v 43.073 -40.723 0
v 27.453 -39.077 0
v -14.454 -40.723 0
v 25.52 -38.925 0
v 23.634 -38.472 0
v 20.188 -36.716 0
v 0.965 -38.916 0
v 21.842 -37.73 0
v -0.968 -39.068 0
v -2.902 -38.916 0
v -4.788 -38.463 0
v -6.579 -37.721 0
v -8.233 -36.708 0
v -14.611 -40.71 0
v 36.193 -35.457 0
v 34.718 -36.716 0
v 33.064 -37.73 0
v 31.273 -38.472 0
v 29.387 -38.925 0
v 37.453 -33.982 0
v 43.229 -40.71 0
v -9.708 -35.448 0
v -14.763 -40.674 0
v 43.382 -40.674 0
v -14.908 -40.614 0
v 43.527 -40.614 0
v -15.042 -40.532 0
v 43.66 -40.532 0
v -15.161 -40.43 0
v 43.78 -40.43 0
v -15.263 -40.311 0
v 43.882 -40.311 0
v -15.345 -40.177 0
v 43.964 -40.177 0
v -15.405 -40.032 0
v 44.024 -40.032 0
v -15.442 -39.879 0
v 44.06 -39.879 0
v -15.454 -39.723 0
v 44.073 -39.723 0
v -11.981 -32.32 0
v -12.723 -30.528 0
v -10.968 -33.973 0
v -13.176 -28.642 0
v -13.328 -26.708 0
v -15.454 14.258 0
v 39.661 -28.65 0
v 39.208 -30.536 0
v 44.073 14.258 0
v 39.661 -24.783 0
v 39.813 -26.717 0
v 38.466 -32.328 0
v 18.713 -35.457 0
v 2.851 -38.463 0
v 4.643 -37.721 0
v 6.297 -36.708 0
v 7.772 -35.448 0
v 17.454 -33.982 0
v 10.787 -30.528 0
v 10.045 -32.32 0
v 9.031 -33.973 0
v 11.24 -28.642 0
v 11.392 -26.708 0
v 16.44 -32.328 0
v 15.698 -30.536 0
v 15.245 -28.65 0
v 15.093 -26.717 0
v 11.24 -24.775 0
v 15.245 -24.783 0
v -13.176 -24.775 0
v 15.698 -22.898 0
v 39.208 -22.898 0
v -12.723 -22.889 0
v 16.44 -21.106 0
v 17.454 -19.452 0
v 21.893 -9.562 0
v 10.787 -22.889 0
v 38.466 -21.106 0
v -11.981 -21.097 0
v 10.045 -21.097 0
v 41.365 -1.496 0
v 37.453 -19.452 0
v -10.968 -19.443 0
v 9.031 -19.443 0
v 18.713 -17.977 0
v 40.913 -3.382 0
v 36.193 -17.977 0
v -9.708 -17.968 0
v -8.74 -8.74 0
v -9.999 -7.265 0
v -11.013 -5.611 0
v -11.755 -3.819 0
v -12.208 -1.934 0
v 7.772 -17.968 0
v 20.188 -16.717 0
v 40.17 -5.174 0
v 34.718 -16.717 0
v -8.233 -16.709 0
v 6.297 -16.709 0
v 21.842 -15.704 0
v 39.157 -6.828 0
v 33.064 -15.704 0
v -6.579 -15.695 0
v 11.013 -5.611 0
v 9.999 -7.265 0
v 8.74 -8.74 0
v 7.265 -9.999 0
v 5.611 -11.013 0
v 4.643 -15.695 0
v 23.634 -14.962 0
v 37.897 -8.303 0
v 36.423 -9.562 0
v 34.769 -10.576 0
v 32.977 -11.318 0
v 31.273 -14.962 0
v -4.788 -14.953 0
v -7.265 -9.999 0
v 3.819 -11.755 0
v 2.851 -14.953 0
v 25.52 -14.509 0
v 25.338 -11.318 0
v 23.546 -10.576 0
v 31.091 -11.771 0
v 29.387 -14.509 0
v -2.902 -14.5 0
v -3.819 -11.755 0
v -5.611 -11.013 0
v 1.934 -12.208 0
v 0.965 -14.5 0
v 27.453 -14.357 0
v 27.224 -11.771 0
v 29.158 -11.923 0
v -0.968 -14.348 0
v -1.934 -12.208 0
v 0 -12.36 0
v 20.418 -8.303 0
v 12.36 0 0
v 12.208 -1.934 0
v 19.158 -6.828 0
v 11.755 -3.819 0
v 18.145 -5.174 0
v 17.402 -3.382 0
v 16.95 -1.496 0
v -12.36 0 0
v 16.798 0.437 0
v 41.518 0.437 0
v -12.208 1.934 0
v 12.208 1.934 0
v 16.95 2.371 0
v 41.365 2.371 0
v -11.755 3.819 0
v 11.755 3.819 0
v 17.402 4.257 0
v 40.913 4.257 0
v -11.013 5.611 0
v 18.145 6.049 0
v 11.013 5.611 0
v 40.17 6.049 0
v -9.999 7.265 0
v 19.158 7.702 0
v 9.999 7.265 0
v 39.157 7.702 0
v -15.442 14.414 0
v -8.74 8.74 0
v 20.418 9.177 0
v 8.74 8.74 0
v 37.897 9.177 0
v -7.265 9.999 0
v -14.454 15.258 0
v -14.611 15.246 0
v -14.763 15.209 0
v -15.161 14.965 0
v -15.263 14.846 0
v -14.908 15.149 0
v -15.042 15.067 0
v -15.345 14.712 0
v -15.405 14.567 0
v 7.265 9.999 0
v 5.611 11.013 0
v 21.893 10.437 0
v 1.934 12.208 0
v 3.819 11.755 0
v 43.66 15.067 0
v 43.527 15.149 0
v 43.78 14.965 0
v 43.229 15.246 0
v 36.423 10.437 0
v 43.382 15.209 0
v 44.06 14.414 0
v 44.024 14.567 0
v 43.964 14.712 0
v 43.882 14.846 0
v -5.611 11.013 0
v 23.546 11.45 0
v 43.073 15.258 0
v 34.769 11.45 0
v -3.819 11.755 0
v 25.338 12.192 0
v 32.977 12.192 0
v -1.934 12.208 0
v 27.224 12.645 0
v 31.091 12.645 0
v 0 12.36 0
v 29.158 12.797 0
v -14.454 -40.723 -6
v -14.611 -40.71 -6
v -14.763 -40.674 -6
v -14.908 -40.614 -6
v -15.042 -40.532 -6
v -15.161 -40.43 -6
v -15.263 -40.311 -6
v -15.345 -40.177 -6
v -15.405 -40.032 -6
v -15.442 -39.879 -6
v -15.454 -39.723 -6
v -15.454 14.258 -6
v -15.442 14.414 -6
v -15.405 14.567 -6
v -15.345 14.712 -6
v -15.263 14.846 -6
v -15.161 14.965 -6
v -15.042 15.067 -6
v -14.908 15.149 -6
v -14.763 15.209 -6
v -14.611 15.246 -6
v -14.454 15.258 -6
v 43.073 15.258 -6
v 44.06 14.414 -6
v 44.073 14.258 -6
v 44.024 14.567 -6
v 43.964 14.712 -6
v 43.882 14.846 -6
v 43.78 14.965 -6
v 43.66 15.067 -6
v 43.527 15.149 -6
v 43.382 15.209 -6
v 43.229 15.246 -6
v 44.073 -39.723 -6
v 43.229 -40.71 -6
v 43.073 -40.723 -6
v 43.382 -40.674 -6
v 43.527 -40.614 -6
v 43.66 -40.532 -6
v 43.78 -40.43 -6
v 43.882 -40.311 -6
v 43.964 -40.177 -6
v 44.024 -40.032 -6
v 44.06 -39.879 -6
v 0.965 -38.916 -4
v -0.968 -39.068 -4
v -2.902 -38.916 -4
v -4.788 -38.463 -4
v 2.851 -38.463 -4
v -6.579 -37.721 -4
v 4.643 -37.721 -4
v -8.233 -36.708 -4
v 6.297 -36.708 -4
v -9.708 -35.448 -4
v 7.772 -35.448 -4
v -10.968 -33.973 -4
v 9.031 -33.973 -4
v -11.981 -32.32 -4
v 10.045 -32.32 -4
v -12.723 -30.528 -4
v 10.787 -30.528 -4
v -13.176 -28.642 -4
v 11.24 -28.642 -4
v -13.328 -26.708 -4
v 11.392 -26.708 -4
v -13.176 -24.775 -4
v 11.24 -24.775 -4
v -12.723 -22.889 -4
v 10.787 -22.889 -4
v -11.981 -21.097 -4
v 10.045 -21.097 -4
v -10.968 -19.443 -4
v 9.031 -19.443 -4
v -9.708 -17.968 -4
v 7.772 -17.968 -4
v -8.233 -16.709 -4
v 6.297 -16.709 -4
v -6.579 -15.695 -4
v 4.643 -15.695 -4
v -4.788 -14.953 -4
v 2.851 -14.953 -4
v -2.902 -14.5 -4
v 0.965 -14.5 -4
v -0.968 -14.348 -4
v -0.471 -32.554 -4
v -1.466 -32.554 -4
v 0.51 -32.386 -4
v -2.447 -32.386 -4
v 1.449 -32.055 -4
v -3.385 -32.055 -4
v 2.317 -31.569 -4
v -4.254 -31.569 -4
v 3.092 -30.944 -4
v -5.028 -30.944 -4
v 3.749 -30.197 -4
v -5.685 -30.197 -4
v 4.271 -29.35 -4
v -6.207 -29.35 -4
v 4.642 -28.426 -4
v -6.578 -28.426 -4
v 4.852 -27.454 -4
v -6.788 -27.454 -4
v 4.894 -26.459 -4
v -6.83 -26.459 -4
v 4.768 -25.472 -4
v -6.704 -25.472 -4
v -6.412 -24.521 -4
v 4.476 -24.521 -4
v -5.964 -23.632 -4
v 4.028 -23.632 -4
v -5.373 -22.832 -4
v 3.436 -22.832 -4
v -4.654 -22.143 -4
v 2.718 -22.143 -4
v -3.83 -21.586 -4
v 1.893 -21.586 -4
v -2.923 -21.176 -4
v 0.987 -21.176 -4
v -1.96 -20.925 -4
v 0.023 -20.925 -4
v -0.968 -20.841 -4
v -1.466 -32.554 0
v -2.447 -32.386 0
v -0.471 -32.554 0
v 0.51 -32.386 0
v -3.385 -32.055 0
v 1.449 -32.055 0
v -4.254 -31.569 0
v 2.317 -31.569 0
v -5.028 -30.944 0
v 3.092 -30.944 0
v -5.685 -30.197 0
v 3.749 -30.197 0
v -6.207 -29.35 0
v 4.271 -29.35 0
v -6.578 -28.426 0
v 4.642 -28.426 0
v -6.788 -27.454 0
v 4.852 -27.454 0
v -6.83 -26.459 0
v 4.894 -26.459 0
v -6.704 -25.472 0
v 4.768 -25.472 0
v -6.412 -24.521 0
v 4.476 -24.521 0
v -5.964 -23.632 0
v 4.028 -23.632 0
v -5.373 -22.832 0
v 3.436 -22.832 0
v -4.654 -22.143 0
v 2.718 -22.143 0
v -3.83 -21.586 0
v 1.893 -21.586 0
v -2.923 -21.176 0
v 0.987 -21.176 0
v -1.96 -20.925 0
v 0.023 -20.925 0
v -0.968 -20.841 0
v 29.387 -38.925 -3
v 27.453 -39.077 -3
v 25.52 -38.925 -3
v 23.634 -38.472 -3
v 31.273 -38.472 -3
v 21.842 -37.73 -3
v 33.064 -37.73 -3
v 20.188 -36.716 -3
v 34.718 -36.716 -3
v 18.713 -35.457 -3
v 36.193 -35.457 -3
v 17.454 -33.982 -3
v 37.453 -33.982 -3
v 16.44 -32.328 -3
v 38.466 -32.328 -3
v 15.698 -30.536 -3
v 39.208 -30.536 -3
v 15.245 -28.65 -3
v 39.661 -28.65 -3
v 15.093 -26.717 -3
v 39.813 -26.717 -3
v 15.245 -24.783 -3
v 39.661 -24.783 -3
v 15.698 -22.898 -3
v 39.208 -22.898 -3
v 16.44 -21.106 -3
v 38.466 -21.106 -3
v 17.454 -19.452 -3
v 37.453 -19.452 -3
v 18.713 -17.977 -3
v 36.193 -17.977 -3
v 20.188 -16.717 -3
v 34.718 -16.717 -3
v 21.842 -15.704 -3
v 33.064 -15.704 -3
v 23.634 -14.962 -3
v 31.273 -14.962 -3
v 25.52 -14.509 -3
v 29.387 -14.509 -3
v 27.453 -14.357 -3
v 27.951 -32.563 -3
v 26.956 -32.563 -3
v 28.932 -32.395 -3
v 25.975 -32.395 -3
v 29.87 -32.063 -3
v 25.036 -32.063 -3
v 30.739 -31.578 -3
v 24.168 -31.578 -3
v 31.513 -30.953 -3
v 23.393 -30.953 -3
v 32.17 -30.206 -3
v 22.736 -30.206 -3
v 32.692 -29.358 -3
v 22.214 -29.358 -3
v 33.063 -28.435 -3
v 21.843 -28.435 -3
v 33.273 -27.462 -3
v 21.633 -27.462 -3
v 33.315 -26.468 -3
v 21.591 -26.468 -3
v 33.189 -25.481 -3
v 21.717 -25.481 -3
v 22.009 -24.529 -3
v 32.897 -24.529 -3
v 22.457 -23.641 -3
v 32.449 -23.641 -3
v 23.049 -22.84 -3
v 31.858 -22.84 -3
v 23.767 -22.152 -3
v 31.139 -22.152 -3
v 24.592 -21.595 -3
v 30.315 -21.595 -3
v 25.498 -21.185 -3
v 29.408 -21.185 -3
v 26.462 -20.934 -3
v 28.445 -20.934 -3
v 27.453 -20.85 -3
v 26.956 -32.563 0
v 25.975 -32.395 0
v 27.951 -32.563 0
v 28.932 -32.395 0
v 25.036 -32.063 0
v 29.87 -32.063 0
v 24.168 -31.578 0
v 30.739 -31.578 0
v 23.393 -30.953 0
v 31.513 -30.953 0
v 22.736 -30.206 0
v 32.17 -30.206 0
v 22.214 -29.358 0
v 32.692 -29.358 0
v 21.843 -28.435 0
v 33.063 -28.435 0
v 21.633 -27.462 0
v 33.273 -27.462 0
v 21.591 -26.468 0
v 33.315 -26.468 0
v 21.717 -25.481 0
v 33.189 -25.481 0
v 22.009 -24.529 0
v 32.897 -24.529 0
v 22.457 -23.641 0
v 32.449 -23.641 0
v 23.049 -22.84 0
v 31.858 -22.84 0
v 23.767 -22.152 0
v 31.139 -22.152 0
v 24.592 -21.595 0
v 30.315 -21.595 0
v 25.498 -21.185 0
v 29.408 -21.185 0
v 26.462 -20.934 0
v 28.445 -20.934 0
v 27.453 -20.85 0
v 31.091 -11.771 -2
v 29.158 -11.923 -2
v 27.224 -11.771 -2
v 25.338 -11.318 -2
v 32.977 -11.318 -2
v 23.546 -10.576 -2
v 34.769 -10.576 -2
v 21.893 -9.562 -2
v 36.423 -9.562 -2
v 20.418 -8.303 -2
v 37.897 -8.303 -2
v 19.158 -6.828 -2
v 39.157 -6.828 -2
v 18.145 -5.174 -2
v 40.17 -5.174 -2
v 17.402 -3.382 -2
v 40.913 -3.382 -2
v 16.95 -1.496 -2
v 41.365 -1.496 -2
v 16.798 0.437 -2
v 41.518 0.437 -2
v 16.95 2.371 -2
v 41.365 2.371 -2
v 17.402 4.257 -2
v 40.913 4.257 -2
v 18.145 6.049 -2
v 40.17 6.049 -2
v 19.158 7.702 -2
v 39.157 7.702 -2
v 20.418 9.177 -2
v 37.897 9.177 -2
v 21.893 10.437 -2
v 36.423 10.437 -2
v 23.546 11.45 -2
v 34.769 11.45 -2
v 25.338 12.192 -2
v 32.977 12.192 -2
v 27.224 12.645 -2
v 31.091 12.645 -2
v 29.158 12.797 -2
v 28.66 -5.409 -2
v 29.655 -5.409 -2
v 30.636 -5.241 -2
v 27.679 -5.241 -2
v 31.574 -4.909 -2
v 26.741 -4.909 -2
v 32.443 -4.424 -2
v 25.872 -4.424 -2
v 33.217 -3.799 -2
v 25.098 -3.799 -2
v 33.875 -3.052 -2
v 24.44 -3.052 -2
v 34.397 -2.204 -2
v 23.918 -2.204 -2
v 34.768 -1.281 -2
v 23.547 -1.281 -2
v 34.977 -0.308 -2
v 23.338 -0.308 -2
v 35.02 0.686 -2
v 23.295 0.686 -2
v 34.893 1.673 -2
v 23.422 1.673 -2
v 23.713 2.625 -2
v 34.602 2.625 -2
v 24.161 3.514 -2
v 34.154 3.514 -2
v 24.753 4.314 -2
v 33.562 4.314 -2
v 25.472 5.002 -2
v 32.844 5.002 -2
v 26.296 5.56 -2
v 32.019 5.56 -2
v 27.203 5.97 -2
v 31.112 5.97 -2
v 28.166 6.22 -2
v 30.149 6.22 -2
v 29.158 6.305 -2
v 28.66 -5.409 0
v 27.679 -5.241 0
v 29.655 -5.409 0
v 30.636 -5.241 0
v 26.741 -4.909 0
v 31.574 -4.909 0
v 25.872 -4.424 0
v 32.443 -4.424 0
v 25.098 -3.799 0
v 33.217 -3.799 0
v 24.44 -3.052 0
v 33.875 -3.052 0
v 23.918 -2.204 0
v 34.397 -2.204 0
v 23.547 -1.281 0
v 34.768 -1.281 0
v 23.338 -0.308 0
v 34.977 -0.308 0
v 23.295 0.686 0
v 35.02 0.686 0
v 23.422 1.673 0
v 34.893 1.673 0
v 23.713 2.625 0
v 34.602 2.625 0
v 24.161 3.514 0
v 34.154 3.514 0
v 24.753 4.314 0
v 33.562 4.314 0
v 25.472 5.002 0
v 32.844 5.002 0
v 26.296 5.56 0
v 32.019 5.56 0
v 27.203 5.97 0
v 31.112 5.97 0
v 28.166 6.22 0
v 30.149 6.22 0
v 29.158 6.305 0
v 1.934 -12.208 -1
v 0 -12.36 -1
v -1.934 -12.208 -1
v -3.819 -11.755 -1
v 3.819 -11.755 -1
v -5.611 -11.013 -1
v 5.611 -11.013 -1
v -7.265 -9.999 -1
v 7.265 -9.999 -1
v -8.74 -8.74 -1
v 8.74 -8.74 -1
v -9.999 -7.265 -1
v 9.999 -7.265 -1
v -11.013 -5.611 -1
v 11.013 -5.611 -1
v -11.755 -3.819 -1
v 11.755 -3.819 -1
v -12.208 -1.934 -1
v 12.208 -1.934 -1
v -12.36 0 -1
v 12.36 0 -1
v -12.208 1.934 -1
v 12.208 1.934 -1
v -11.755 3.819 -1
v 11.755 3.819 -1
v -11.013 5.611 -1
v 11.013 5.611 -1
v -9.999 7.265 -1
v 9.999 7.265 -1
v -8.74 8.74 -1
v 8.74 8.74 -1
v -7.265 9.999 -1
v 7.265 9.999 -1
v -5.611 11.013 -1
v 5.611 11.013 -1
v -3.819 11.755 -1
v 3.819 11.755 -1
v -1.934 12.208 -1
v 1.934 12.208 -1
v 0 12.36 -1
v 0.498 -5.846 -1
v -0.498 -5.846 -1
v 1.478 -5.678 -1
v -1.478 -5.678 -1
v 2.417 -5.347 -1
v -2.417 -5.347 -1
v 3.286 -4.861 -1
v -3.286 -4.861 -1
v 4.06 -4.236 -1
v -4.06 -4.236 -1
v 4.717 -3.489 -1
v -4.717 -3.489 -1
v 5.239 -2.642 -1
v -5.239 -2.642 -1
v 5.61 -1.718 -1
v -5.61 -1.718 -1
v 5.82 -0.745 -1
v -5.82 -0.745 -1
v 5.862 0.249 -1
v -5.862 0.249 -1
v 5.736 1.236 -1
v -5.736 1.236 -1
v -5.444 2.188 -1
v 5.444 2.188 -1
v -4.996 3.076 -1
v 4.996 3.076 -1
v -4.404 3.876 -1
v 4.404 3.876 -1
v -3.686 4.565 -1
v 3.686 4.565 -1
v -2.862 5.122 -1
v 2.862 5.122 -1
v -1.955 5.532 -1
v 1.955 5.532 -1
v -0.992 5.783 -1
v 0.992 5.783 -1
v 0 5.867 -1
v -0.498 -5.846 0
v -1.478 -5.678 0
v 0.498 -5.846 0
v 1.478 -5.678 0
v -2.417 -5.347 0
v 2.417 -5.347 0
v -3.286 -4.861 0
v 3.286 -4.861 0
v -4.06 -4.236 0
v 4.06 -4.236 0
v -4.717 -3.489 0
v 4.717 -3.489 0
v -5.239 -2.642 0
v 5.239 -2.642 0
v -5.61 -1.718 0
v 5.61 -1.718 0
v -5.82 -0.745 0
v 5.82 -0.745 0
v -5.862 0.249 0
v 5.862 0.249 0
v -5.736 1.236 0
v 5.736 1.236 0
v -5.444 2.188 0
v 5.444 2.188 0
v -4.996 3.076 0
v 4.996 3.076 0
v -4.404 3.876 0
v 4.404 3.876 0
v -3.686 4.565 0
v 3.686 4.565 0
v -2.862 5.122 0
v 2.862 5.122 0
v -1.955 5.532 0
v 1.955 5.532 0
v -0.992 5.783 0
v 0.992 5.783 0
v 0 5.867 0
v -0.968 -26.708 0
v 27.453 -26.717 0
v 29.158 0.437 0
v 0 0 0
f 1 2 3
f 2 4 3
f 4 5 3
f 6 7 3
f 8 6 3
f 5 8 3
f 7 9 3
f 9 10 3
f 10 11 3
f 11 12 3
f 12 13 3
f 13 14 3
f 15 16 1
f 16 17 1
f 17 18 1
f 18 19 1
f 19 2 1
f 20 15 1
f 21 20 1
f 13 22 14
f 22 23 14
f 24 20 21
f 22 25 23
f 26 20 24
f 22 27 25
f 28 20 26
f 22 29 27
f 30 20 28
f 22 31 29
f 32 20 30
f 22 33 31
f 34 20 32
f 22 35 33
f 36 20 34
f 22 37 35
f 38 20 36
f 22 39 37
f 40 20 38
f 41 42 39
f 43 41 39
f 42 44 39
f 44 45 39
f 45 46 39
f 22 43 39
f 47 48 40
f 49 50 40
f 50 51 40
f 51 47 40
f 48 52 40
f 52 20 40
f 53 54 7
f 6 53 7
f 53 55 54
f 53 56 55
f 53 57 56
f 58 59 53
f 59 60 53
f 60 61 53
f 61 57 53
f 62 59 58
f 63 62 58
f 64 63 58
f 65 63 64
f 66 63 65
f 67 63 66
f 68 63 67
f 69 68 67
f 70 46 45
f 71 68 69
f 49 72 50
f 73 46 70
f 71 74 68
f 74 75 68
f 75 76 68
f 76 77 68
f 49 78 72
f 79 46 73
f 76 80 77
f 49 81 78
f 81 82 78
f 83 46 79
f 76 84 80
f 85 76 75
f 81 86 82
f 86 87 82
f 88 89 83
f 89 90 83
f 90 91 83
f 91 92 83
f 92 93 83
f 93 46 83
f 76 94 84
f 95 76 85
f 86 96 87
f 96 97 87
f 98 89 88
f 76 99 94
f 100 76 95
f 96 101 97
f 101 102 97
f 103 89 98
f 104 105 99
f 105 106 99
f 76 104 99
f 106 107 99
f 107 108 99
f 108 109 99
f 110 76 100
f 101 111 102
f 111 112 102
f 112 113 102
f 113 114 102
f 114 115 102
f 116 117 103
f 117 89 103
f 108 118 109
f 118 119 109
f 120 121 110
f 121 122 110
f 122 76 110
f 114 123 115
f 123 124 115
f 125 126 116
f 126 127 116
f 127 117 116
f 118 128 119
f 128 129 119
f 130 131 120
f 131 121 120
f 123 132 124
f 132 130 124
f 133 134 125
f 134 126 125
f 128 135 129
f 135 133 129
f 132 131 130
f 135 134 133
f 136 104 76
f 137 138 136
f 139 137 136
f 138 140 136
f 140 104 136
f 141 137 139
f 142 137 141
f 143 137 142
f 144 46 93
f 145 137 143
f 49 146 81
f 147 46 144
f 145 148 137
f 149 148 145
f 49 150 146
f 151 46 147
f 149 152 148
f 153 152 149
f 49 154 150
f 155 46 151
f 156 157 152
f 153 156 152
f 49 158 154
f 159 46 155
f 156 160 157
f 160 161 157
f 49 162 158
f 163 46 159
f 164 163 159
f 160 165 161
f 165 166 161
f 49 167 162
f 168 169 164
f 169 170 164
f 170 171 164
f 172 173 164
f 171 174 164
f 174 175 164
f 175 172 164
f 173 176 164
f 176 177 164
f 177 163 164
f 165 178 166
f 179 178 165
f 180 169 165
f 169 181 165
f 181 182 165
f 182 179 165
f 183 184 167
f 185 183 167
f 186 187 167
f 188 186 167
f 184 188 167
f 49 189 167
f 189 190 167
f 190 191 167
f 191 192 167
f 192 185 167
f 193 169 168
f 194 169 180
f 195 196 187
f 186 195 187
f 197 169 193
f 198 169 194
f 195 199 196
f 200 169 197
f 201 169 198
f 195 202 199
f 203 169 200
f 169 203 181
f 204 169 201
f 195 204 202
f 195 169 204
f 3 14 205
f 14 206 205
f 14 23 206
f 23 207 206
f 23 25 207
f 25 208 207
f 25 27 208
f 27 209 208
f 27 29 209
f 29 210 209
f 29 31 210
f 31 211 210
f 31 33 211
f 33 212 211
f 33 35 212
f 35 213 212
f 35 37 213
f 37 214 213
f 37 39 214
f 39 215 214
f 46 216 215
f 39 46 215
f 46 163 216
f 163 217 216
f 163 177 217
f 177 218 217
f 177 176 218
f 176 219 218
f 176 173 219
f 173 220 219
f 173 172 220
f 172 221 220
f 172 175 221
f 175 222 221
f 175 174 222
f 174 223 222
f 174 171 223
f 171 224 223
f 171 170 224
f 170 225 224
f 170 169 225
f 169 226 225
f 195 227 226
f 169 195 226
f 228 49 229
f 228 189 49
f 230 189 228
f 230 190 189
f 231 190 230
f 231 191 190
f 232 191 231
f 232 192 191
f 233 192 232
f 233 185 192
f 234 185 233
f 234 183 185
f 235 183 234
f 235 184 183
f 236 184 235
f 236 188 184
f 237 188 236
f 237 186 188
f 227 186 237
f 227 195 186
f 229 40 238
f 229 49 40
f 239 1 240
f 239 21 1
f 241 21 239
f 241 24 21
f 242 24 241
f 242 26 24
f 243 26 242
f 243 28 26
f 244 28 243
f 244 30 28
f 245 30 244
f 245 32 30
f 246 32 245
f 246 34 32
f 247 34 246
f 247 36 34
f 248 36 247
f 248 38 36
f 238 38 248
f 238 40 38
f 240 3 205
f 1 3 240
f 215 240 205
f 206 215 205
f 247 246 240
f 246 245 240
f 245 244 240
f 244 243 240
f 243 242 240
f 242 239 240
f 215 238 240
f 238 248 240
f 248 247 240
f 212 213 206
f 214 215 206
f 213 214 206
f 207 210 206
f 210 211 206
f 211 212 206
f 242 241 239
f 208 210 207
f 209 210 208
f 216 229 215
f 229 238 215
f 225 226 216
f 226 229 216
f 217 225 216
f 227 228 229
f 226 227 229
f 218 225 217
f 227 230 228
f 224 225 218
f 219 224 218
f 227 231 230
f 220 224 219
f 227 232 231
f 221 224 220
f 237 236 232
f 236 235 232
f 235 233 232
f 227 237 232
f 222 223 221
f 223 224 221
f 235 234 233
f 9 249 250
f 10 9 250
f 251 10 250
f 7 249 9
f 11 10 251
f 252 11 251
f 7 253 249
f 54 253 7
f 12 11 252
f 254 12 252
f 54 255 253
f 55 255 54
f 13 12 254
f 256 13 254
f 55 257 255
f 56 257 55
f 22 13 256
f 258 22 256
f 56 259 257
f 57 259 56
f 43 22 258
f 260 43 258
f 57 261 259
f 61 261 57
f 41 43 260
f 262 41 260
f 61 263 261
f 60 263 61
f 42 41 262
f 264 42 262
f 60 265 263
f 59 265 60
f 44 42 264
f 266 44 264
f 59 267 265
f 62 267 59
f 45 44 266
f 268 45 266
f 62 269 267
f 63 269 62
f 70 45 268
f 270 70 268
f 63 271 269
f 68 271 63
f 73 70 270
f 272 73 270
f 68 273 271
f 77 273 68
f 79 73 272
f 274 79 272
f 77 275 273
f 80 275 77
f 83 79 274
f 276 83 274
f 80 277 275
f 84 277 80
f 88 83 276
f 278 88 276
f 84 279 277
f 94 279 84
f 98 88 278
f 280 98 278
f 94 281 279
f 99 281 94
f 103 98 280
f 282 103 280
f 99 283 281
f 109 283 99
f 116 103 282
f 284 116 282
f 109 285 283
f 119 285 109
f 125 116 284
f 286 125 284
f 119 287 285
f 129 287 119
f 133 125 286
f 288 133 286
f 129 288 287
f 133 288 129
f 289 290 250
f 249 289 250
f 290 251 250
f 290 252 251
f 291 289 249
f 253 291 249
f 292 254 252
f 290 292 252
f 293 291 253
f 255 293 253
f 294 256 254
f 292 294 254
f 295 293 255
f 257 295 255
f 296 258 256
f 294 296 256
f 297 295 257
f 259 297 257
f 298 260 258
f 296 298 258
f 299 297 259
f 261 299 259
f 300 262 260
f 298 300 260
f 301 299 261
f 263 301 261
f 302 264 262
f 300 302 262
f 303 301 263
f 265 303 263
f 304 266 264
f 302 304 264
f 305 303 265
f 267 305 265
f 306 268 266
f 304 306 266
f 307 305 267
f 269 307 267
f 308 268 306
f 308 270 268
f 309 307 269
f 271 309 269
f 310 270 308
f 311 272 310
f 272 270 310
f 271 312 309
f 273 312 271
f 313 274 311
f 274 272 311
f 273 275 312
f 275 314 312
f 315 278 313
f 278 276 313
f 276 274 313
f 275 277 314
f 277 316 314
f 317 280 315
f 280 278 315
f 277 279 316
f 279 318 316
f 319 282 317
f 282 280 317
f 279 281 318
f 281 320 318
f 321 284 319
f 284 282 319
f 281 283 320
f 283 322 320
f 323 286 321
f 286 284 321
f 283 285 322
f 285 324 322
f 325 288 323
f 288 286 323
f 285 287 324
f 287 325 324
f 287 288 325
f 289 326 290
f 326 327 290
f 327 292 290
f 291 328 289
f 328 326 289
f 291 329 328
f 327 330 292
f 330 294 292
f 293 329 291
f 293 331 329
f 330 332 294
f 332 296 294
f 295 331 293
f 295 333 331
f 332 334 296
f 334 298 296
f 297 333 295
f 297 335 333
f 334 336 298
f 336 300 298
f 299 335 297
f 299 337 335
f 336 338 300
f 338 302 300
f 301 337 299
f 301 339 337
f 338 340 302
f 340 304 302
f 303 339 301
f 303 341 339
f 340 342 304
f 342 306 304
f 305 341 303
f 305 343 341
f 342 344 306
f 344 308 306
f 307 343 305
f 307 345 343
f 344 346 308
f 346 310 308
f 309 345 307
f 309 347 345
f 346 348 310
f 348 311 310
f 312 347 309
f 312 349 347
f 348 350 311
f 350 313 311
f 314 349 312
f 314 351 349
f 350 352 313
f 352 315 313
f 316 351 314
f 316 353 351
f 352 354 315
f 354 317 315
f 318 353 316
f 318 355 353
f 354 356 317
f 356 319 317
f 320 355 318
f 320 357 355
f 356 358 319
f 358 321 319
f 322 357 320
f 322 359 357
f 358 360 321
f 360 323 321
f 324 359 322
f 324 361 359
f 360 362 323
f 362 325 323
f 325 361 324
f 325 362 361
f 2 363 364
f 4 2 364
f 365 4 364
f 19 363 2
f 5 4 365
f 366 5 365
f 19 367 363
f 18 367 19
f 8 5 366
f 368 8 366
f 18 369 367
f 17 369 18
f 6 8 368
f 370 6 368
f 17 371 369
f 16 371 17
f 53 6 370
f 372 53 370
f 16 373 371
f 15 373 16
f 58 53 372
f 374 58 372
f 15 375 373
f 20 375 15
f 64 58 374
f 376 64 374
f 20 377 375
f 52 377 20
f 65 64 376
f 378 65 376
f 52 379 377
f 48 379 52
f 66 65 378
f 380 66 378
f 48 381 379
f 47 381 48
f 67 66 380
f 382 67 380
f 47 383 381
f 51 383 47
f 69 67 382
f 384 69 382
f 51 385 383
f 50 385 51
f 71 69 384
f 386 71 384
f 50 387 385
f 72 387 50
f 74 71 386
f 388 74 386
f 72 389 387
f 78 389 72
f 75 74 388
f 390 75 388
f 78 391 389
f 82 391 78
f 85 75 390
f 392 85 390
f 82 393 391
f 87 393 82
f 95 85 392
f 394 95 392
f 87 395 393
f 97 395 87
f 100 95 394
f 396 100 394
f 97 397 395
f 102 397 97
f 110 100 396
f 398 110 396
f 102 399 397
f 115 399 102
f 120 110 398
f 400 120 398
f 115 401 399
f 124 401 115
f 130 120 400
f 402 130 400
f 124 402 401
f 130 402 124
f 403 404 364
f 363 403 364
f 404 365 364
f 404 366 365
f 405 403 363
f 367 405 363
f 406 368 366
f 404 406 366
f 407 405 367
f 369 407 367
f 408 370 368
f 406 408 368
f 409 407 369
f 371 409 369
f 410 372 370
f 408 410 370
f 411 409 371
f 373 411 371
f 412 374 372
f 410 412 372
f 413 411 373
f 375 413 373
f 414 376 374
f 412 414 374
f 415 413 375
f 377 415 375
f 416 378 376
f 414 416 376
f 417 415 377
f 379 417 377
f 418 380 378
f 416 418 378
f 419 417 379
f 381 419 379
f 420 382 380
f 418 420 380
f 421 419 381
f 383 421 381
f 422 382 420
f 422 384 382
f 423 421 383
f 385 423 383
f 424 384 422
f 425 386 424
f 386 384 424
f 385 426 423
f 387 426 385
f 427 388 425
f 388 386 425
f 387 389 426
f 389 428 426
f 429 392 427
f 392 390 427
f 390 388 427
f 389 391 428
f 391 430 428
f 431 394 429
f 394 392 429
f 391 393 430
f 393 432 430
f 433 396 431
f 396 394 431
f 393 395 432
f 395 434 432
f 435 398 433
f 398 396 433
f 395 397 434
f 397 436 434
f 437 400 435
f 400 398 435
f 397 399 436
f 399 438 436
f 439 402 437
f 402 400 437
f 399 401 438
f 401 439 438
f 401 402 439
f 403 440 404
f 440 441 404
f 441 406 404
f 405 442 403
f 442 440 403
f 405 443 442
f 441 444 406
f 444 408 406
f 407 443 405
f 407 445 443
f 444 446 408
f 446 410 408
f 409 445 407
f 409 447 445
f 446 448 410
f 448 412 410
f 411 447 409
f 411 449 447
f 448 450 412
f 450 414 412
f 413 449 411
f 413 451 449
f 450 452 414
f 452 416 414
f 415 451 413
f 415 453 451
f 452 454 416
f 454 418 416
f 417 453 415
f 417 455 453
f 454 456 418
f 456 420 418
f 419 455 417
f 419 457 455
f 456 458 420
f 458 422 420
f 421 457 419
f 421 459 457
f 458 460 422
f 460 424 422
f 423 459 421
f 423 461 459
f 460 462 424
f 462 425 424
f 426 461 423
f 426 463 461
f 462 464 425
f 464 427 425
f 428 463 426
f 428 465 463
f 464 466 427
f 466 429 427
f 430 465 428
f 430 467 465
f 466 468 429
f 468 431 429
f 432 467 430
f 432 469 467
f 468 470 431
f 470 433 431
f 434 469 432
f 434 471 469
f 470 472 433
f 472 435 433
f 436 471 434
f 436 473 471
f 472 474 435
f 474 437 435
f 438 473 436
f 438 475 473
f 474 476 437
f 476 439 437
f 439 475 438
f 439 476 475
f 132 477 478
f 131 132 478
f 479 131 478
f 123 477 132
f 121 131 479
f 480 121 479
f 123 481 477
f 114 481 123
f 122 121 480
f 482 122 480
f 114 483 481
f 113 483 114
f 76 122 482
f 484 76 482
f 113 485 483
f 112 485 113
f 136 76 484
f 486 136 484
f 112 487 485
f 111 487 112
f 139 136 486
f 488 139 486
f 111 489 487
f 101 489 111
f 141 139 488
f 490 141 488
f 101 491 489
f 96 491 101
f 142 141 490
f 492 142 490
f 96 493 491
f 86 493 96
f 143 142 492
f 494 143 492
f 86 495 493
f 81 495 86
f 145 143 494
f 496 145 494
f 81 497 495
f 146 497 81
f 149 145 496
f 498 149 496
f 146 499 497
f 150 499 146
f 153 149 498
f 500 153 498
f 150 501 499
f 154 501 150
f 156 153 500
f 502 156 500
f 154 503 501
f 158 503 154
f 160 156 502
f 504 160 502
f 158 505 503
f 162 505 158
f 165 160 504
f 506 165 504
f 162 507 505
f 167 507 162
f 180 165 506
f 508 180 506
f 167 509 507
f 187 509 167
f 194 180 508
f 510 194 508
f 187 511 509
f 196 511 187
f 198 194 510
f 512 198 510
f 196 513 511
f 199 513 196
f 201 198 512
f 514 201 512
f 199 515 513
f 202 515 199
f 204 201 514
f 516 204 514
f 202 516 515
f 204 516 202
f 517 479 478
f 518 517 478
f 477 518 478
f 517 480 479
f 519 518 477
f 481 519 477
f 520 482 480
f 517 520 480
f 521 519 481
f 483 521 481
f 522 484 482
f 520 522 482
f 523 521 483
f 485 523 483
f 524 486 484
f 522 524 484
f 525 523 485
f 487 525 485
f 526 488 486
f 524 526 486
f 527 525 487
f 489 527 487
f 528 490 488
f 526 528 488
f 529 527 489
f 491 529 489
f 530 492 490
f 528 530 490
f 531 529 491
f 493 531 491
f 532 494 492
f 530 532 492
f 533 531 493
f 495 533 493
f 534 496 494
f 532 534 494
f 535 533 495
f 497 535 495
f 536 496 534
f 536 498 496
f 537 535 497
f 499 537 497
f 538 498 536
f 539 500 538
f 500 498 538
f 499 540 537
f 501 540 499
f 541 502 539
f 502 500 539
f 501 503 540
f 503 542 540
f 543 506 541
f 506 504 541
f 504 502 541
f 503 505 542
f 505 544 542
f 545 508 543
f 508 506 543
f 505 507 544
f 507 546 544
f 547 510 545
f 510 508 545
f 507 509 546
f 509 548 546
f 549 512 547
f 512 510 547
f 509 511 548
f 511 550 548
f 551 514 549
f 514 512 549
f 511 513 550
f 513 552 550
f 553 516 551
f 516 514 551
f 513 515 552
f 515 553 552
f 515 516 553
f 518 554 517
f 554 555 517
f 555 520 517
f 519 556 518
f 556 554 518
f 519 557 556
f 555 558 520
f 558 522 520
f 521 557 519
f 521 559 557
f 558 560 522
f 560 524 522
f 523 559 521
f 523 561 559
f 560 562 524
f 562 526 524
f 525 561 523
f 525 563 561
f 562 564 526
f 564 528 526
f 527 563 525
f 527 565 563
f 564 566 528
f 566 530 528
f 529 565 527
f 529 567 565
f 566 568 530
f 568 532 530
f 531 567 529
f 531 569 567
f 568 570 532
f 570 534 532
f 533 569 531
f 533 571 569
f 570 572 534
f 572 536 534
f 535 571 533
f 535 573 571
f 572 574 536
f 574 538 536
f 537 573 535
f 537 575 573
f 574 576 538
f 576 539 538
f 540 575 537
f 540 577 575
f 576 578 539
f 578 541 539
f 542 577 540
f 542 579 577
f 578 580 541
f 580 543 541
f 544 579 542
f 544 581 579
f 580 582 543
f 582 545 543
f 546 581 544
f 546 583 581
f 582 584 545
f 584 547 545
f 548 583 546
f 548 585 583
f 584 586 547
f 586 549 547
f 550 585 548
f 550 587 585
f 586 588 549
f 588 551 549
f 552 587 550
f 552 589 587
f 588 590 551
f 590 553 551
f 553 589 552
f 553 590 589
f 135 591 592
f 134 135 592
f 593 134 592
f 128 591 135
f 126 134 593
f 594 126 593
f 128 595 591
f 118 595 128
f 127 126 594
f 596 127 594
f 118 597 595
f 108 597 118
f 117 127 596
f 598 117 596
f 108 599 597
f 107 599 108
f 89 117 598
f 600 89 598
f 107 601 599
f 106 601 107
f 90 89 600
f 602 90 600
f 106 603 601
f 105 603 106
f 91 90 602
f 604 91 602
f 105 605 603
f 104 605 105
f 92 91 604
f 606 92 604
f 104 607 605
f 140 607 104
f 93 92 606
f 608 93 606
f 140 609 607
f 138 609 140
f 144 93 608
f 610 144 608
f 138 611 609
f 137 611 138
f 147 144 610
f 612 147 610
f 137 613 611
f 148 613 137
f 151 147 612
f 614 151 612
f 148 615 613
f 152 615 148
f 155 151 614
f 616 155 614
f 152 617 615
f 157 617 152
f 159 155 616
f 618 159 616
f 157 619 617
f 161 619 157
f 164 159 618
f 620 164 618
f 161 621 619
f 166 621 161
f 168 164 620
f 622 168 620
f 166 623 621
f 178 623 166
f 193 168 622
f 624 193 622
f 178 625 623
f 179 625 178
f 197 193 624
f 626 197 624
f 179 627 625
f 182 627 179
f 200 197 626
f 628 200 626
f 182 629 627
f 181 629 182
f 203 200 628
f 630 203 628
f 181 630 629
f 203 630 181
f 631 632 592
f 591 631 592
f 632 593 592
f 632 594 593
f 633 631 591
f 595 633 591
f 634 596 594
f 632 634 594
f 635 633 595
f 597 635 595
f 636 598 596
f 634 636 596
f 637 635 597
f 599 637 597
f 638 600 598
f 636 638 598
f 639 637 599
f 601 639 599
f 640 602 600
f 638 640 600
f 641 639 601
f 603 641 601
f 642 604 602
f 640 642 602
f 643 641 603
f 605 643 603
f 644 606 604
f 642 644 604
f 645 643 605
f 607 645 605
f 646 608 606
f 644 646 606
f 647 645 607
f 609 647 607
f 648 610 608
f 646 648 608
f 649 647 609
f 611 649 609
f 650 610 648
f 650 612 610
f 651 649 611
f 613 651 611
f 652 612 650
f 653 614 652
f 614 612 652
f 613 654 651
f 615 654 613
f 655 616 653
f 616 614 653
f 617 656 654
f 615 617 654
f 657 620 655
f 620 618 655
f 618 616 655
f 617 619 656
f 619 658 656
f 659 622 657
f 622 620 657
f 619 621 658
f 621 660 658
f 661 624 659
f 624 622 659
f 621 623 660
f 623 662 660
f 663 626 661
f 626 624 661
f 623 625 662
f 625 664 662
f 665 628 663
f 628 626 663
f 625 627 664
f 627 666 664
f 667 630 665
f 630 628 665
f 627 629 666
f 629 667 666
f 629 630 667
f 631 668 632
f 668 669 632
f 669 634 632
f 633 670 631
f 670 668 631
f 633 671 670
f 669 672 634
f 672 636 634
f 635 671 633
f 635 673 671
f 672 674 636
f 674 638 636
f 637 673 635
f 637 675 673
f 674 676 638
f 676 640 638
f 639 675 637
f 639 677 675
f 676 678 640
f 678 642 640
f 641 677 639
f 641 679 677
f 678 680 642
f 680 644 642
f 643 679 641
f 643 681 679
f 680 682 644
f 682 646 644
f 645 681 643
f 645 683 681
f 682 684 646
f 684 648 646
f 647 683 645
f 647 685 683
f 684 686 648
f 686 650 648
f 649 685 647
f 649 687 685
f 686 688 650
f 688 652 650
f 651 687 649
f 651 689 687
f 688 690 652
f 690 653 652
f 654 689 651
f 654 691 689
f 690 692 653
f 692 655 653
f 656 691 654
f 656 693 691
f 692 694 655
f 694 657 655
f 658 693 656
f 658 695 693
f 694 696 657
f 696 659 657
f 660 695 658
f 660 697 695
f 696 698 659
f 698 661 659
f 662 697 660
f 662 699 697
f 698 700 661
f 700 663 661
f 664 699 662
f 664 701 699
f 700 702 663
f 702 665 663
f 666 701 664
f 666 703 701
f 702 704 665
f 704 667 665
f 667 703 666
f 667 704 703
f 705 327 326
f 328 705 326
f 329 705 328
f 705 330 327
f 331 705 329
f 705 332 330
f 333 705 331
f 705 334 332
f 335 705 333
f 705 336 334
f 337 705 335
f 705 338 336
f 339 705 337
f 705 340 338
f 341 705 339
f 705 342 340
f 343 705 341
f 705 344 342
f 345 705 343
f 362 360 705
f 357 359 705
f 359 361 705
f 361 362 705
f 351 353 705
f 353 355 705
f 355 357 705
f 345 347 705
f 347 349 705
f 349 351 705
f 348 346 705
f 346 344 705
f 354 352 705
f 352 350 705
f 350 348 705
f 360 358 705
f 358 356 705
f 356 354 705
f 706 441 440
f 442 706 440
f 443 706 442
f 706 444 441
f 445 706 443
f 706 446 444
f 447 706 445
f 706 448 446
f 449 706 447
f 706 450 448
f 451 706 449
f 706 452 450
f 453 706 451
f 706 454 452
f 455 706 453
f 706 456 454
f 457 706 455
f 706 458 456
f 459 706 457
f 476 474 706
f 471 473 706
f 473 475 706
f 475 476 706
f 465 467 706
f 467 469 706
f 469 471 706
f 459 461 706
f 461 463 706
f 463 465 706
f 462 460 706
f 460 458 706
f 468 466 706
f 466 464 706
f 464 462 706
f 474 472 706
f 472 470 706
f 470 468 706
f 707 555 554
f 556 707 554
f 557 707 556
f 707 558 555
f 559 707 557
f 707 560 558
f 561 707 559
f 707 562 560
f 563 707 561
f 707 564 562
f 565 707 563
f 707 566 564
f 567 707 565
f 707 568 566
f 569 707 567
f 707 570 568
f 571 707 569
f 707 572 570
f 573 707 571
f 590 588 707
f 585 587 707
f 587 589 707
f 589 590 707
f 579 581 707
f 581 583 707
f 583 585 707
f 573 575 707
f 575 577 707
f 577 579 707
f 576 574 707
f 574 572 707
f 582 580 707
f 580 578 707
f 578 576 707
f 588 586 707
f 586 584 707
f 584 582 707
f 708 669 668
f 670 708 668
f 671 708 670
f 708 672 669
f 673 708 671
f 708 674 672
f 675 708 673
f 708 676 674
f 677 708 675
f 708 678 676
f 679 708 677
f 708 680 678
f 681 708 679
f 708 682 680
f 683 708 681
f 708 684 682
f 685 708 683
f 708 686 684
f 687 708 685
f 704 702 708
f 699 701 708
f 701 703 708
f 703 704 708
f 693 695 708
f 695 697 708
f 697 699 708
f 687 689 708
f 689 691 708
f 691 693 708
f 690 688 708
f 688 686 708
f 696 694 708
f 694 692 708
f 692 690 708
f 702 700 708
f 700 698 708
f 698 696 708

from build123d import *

# Parameters (mm, degrees)
BOSS_EXTRUDE1_DEPTH   = 6
CAVITY1_START         = -3
CAVITY1_OUTLINE_R     = 12.36
CAVITY1_OUTLINE_R_2   = 5.8674
CAVITY1_DEPTH         = 3
CAVITY1_START_2       = -2
CAVITY1_2_OUTLINE_R   = 12.36
CAVITY1_2_OUTLINE_R_2 = 5.8674
CAVITY1_2_DEPTH       = 2
CAVITY1_START_3       = -4
CAVITY1_3_OUTLINE_R   = 12.36
CAVITY1_3_OUTLINE_R_2 = 5.8674
CAVITY1_3_DEPTH       = 1
CAVITY1_START_4       = -1
CAVITY1_4_OUTLINE_R   = 12.36
CAVITY1_4_OUTLINE_R_2 = 5.8674
CAVITY1_4_DEPTH       = 1


# Read off the part's stored shape, not the designer's step: Cavity1
with BuildPart() as part:
    # Sketch1 → Boss-Extrude1 (new body)
    with BuildSketch(Plane.XY):
        with BuildLine():
            Line((-14.454108138, 15.257956391), (43.072620808, 15.257956391))
            ThreePointArc((43.072620808, 15.257956391), (43.77972759, 14.965063172), (44.072620808, 14.257956391))
            Line((44.072620808, 14.257956391), (44.072620808, -39.722776706))
            ThreePointArc((44.072620808, -39.722776706), (43.77972759, -40.429883487), (43.072620808, -40.722776706))
            Line((43.072620808, -40.722776706), (-14.454108138, -40.722776706))
            ThreePointArc((-14.454108138, -40.722776706), (-15.16121492, -40.429883487), (-15.454108138, -39.722776706))
            Line((-15.454108138, -39.722776706), (-15.454108138, 14.257956391))
            ThreePointArc((-15.454108138, 14.257956391), (-15.16121492, 14.965063172), (-14.454108138, 15.257956391))
        make_face()
    extrude(amount=-BOSS_EXTRUDE1_DEPTH)

    # Cavity1 outline → Cavity1 (cut)
    # profile 1 of 2: a face of its own
    with BuildSketch(Plane.XY.offset(CAVITY1_START)):
        with Locations((-0.968104395, -26.708239151)):
            Circle(CAVITY1_OUTLINE_R)
        with Locations((-0.968104395, -26.708239151)):
            Circle(CAVITY1_OUTLINE_R_2, mode=Mode.SUBTRACT)
    # profile 2 of 2: a face of its own
    with BuildSketch(Plane.XY.offset(CAVITY1_START)):
        with Locations((27.453101021, -26.716944952)):
            Circle(CAVITY1_OUTLINE_R)
        with Locations((27.453101021, -26.716944952)):
            Circle(CAVITY1_OUTLINE_R_2, mode=Mode.SUBTRACT)
    extrude(amount=CAVITY1_DEPTH, mode=Mode.SUBTRACT)

    # Cavity1 2 outline → Cavity1 2 (cut)
    with BuildSketch(Plane.XY.offset(CAVITY1_START_2)):
        with Locations((29.157558022, 0.437297786)):
            Circle(CAVITY1_2_OUTLINE_R)
        with Locations((29.157558022, 0.437297786)):
            Circle(CAVITY1_2_OUTLINE_R_2, mode=Mode.SUBTRACT)
    extrude(amount=CAVITY1_2_DEPTH, mode=Mode.SUBTRACT)

    # Cavity1 3 outline → Cavity1 3 (cut)
    with BuildSketch(Plane.XY.offset(CAVITY1_START_3)):
        with Locations((-0.968104395, -26.708239151)):
            Circle(CAVITY1_3_OUTLINE_R)
        with Locations((-0.968104395, -26.708239151)):
            Circle(CAVITY1_3_OUTLINE_R_2, mode=Mode.SUBTRACT)
    extrude(amount=CAVITY1_3_DEPTH, mode=Mode.SUBTRACT)

    # Cavity1 4 outline → Cavity1 4 (cut)
    with BuildSketch(Plane.XY.offset(CAVITY1_START_4)):
        Circle(CAVITY1_4_OUTLINE_R)
        Circle(CAVITY1_4_OUTLINE_R_2, mode=Mode.SUBTRACT)
    extrude(amount=CAVITY1_4_DEPTH, mode=Mode.SUBTRACT)


solid = part.part
